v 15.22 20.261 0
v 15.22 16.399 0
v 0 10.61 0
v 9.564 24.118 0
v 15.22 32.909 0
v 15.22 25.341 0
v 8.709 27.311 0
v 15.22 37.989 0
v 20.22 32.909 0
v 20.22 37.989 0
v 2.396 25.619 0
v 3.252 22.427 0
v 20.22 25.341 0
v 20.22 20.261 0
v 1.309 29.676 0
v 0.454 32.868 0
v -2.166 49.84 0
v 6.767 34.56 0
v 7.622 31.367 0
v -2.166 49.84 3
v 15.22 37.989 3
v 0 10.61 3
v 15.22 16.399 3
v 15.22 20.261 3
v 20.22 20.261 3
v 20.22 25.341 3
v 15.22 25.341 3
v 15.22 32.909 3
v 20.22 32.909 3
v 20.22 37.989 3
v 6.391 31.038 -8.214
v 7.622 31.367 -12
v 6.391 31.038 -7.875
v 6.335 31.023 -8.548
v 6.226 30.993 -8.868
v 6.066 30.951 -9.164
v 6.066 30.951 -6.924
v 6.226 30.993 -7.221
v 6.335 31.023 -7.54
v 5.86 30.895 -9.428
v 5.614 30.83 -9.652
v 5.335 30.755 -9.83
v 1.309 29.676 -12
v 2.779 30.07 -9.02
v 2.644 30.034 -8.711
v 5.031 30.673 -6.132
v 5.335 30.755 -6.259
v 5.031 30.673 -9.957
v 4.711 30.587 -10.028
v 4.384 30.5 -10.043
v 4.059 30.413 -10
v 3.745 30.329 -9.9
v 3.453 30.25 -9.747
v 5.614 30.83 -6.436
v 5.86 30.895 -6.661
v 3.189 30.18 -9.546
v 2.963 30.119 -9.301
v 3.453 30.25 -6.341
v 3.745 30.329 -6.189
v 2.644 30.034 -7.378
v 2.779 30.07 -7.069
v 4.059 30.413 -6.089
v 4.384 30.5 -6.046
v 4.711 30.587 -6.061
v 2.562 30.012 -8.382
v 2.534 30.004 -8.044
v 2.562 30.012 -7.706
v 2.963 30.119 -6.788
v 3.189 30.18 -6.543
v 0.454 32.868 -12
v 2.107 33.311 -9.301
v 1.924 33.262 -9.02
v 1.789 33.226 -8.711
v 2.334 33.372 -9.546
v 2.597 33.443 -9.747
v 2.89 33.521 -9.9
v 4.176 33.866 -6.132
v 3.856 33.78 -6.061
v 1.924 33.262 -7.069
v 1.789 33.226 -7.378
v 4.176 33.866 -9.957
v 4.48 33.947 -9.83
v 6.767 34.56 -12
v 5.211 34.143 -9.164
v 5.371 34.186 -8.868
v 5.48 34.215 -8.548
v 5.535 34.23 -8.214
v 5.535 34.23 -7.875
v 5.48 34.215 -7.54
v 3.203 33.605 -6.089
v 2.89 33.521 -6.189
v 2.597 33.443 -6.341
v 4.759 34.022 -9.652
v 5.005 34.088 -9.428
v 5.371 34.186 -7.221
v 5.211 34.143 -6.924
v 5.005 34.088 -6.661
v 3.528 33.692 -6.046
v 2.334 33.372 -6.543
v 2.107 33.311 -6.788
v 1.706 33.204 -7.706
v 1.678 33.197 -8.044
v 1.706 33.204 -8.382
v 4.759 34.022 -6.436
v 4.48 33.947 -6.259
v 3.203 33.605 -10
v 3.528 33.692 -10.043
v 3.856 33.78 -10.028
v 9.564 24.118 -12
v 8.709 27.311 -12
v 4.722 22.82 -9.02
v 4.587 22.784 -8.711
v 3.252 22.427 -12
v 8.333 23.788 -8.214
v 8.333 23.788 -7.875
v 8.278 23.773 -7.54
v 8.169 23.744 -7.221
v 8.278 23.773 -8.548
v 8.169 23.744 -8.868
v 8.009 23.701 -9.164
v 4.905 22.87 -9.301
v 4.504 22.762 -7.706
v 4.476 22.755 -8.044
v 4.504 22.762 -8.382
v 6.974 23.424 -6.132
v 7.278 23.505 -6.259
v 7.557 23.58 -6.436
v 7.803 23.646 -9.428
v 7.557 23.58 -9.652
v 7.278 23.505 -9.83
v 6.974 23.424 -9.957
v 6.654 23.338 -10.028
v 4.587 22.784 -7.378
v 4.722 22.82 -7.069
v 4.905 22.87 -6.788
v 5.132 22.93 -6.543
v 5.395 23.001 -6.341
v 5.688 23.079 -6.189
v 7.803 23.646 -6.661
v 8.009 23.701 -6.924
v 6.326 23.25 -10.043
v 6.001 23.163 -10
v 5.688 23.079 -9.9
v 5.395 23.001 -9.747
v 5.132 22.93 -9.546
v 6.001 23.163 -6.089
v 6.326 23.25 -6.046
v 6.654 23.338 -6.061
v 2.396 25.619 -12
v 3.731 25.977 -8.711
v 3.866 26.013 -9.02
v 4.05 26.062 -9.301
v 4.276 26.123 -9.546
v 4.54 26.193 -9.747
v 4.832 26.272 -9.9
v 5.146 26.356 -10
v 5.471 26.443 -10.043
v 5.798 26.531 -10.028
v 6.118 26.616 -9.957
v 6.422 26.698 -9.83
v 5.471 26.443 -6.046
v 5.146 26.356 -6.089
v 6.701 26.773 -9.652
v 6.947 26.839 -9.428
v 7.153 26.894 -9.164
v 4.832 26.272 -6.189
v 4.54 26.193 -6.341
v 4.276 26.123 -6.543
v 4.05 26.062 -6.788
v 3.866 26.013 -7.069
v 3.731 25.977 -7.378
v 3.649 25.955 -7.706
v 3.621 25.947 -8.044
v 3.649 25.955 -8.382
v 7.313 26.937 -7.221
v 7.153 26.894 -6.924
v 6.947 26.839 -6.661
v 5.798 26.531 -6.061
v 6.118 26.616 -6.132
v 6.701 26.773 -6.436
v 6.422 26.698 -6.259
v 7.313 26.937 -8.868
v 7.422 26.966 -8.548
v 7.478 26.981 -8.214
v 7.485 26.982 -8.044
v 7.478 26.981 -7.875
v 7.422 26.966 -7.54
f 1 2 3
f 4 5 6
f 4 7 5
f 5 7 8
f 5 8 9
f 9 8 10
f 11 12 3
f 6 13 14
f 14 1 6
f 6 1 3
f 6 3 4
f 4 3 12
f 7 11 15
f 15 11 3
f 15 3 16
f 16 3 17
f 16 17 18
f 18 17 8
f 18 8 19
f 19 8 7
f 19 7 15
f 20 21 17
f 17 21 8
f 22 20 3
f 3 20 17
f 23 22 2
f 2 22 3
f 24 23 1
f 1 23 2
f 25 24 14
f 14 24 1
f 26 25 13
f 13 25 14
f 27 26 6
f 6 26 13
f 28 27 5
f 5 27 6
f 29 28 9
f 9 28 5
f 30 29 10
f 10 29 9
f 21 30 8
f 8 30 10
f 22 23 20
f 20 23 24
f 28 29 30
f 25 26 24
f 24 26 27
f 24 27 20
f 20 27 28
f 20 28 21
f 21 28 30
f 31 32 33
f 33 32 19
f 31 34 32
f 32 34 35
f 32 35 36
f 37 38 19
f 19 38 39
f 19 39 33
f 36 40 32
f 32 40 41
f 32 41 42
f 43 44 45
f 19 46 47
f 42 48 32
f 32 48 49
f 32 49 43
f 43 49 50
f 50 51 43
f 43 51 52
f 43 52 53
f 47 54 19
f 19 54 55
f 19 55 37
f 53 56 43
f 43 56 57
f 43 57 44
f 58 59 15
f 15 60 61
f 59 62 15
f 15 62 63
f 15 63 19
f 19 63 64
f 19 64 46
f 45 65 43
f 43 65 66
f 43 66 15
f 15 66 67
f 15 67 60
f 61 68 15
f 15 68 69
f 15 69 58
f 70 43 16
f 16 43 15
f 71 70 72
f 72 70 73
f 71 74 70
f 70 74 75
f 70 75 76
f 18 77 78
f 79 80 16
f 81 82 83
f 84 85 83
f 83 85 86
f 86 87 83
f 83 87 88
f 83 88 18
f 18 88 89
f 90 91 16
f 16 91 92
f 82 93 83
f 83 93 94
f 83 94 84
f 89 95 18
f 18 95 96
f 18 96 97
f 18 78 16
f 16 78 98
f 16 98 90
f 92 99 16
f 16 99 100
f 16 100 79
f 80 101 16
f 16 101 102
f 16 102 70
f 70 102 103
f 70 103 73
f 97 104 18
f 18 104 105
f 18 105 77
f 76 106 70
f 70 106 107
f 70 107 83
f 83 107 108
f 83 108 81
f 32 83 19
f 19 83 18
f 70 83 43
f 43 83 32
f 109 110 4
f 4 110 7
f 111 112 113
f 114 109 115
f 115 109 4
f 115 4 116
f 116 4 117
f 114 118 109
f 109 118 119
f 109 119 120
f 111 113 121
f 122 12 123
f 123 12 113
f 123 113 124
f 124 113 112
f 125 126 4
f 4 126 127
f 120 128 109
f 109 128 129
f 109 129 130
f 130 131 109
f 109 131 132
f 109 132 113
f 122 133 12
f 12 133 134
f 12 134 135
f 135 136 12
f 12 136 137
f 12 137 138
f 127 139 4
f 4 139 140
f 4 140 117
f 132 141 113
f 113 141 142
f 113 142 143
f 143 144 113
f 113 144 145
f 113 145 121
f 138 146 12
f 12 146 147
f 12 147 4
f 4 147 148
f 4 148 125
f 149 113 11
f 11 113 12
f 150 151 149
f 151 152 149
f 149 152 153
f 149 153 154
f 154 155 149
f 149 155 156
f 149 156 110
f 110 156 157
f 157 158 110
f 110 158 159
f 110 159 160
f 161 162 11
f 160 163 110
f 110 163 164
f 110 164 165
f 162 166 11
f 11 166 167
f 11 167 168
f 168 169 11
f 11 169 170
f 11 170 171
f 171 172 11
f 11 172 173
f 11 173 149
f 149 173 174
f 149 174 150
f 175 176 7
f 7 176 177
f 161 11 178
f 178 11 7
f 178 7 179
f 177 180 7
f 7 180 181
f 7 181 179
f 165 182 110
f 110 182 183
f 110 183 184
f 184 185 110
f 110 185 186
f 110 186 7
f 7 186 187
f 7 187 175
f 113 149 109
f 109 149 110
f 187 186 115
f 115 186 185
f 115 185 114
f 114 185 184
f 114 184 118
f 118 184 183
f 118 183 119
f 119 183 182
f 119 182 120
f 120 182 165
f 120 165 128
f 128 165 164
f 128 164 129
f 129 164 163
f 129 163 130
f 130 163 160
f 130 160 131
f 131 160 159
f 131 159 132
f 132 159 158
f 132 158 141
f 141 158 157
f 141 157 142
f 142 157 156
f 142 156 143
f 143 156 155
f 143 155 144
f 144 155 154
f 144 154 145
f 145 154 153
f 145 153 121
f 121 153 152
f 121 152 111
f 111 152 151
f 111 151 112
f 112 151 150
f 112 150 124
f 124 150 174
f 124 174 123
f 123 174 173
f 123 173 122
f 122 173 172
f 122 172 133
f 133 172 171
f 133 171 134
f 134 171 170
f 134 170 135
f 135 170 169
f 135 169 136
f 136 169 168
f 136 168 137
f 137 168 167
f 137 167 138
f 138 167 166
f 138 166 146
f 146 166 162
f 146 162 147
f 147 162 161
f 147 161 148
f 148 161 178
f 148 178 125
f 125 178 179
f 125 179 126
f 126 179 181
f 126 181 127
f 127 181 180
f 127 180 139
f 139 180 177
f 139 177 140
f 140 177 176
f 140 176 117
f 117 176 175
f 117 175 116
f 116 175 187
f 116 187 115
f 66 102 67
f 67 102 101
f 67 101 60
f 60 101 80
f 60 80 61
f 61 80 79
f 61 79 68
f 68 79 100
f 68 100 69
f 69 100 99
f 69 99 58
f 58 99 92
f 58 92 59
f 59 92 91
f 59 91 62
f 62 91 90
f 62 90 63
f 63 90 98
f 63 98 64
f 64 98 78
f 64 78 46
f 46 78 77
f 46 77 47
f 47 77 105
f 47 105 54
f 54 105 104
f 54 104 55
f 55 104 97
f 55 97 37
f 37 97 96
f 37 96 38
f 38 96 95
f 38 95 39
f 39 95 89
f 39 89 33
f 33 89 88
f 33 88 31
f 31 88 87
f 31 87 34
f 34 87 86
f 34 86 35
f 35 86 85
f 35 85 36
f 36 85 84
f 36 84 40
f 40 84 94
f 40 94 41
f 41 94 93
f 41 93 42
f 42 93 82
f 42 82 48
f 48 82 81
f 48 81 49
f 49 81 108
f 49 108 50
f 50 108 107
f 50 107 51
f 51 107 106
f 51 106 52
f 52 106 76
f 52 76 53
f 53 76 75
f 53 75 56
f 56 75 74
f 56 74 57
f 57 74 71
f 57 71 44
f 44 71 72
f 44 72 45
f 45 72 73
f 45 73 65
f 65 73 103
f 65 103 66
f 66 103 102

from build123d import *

# Parameters (mm, degrees)
BOSS_EXTRUDE1_DEPTH = 3
BOSS_EXTRUDE2_DEPTH = 12
SKETCH8_R           = 2
CUT_EXTRUDE2_DEPTH  = 27.616080544


with BuildPart() as part:
    # Sketch1 → Boss-Extrude1 (new body)
    with BuildSketch(Plane.XY):
        Polygon((15.219519397, 37.989351506), (20.219519397, 37.989351506), (20.219519397, 32.909351506), (15.219519397, 32.909351506), (15.219519397, 25.341157087), (20.219519397, 25.341157087), (20.219519397, 20.261157087), (15.219519397, 20.261157087), (15.219519397, 16.399351506), (0, 10.609645279), (-2.165979283, 49.840454802), align=None)
    extrude(amount=BOSS_EXTRUDE1_DEPTH)

    # Sketch7 → Boss-Extrude2 (add)
    with BuildSketch(Plane(origin=(0, 0, 0), x_dir=(-1, 0, 0), z_dir=(0, 0, -1))):
        Polygon((-7.622037061, 31.367483037), (-6.766619255, 34.559945753), (-0.453977977, 32.868478621), (-1.309395784, 29.676015905), align=None)
        Polygon((-8.709077051, 27.310594567), (-2.396435773, 25.619127434), (-3.25185358, 22.426664718), (-9.564494858, 24.118131851), align=None)
    extrude(amount=BOSS_EXTRUDE2_DEPTH)

    # Sketch8 → Cut-Extrude2 (cut, through all)
    with BuildSketch(Plane(origin=(-8.186708897, 30.553213551, 0), x_dir=(0.965925826, 0.258819045, 0), z_dir=(-0.258819045, 0.965925826, 0))):
        with Locations((12.213160878, 8.044397723)):
            Circle(SKETCH8_R)
    extrude(amount=-CUT_EXTRUDE2_DEPTH, mode=Mode.SUBTRACT)


solid = part.part
